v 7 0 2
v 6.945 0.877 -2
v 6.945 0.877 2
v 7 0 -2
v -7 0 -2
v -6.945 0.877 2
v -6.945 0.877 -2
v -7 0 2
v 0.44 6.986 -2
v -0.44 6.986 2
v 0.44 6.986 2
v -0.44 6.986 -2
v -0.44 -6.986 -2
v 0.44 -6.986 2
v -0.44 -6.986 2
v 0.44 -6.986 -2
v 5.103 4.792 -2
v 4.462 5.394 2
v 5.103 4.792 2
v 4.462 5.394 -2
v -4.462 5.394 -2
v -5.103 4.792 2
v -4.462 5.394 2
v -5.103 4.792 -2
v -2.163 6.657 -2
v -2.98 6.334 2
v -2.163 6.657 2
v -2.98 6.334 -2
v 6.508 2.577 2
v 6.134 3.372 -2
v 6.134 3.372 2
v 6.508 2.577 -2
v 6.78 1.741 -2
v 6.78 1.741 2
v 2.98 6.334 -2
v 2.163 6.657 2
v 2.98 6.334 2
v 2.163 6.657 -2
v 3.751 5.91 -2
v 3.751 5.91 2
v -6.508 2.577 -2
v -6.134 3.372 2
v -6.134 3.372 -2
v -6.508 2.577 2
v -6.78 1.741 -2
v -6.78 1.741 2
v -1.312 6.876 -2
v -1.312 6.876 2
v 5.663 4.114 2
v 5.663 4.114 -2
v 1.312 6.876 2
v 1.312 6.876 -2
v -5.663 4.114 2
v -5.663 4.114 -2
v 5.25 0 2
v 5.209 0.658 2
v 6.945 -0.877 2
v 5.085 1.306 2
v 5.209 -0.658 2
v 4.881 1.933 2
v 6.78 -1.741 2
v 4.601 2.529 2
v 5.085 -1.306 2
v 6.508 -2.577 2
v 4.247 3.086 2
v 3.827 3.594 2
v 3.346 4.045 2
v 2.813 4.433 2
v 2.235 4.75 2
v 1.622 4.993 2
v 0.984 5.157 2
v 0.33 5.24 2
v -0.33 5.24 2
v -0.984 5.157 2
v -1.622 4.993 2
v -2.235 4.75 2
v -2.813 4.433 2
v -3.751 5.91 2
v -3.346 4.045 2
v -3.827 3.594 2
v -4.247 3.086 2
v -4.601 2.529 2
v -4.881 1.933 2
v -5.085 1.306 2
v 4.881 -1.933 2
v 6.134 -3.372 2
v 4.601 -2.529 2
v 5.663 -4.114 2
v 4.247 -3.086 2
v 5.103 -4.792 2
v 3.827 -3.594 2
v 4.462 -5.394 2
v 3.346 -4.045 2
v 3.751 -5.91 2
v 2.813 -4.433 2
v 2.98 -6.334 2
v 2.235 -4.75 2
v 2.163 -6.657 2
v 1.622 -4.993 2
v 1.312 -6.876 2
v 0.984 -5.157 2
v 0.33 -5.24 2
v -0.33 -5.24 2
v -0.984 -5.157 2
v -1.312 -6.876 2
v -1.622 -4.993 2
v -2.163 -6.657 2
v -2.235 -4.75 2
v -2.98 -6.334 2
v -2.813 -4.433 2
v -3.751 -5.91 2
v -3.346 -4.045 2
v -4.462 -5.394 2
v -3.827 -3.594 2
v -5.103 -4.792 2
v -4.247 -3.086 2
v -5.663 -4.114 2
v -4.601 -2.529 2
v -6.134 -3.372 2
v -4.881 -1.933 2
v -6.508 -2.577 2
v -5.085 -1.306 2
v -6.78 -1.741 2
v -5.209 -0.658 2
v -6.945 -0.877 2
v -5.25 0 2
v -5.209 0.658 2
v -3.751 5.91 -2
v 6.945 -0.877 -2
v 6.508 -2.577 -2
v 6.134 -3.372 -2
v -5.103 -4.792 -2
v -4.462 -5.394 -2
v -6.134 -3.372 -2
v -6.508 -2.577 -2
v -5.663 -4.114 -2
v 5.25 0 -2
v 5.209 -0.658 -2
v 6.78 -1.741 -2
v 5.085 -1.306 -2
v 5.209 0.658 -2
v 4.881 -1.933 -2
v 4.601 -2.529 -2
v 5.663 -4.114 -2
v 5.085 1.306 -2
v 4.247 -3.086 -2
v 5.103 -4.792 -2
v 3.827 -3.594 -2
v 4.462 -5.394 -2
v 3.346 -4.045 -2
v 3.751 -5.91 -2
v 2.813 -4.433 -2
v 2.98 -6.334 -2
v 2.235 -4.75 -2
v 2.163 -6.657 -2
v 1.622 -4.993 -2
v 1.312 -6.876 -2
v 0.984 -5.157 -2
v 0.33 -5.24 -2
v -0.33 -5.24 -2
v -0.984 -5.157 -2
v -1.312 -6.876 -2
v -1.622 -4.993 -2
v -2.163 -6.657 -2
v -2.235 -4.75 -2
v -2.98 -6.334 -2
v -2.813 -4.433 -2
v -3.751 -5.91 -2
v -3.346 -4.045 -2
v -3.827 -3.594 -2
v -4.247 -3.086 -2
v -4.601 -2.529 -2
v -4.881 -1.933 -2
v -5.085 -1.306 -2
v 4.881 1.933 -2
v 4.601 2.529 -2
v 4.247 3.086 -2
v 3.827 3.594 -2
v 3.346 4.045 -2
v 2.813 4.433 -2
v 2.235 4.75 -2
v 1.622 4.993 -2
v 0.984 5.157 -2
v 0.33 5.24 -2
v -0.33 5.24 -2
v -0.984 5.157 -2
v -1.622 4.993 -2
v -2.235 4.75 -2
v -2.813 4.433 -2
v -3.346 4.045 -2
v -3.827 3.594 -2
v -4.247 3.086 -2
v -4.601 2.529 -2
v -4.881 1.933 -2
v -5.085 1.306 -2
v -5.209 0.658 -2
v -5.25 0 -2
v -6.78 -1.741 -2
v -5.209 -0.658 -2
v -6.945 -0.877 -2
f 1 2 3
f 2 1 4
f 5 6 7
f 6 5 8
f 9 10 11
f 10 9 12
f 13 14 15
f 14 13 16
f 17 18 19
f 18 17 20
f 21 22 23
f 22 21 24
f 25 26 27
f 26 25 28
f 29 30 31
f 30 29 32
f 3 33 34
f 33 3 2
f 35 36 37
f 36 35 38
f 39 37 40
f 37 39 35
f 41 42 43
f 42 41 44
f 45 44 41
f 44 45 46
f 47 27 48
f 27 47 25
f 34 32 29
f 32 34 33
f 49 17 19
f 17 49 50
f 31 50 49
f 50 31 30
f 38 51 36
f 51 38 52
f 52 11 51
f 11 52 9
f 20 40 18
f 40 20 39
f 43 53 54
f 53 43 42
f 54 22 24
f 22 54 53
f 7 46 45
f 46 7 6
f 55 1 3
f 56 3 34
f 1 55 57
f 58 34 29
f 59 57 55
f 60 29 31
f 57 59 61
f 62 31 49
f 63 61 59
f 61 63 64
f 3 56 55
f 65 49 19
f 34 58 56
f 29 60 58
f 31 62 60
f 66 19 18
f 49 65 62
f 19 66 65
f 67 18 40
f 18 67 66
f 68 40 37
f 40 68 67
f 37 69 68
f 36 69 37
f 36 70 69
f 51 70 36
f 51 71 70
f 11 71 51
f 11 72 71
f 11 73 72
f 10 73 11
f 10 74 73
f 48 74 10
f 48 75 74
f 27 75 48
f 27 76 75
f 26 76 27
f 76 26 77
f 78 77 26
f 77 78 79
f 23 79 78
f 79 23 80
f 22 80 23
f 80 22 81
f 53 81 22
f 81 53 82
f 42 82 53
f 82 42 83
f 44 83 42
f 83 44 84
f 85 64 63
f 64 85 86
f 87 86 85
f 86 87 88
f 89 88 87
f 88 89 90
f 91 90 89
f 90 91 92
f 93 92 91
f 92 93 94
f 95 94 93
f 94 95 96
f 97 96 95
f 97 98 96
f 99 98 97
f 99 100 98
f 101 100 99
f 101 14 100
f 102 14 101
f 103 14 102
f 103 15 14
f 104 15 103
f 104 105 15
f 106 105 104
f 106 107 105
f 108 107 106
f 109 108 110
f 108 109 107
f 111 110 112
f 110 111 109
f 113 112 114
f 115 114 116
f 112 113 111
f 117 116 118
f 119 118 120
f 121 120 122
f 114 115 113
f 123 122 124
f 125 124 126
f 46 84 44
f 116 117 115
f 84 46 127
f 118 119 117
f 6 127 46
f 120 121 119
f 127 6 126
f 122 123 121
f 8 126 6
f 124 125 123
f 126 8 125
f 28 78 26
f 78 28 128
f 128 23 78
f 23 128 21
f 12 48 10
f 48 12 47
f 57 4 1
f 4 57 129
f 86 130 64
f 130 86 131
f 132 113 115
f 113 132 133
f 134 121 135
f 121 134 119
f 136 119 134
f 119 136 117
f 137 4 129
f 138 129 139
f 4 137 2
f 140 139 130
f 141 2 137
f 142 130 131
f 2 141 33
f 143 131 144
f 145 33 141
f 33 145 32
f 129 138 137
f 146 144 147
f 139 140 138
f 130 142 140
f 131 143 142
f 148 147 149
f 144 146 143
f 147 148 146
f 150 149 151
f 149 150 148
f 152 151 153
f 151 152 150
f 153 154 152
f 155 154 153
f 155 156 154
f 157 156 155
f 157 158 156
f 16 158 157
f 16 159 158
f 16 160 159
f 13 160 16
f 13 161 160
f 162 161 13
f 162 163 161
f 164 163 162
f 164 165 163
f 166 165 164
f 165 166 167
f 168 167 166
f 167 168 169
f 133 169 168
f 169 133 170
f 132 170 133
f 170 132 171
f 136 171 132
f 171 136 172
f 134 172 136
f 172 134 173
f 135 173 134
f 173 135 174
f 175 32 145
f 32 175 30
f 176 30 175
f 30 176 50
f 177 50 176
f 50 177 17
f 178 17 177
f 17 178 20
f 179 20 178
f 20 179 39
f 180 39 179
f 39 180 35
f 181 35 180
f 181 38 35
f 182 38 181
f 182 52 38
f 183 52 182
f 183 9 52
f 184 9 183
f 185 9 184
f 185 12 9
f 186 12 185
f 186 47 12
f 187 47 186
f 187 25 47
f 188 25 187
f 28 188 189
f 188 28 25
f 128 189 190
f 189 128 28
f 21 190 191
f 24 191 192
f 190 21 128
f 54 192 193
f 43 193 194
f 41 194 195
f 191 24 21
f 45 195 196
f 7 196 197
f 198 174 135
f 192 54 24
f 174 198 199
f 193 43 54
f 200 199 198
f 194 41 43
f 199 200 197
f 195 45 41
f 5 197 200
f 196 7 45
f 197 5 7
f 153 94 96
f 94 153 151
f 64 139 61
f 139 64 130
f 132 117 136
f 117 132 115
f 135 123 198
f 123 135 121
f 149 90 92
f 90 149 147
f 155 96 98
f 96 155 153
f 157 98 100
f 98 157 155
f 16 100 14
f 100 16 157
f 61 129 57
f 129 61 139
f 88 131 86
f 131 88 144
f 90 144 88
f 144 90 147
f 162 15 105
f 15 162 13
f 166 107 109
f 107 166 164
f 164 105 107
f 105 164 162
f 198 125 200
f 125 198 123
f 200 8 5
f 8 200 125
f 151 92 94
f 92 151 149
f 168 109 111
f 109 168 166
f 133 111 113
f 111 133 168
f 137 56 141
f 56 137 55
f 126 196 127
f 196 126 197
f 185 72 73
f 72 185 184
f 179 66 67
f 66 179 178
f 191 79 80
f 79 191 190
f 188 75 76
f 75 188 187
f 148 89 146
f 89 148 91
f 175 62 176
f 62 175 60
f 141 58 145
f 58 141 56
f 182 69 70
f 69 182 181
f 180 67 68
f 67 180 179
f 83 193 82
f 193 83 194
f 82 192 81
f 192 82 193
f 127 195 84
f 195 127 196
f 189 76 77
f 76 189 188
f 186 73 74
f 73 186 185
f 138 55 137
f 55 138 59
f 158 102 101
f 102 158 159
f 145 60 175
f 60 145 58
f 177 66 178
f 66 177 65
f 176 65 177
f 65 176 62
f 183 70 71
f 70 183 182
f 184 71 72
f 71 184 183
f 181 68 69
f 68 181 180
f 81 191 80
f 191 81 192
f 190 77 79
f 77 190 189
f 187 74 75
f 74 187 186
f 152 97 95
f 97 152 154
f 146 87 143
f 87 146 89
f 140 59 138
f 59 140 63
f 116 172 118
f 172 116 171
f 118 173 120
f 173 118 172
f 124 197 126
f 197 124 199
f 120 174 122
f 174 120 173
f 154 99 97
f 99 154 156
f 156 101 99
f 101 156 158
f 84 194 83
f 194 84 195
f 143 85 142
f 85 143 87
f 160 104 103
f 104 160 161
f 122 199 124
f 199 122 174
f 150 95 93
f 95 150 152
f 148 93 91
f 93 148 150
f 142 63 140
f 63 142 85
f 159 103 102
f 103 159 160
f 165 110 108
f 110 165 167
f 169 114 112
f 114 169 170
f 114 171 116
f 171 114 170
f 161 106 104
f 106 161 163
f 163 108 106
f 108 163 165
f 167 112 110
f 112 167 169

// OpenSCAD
$fn = 50;


difference() {
	union() {
		translate(v = [0, 0, -2.0000000000]) {
			cylinder(h = 4, r = 7.0000000000);
		}
	}
	union() {
		translate(v = [0, 0, -100.0000000000]) {
			cylinder(h = 200, r = 5.2500000000);
		}
	}
}
